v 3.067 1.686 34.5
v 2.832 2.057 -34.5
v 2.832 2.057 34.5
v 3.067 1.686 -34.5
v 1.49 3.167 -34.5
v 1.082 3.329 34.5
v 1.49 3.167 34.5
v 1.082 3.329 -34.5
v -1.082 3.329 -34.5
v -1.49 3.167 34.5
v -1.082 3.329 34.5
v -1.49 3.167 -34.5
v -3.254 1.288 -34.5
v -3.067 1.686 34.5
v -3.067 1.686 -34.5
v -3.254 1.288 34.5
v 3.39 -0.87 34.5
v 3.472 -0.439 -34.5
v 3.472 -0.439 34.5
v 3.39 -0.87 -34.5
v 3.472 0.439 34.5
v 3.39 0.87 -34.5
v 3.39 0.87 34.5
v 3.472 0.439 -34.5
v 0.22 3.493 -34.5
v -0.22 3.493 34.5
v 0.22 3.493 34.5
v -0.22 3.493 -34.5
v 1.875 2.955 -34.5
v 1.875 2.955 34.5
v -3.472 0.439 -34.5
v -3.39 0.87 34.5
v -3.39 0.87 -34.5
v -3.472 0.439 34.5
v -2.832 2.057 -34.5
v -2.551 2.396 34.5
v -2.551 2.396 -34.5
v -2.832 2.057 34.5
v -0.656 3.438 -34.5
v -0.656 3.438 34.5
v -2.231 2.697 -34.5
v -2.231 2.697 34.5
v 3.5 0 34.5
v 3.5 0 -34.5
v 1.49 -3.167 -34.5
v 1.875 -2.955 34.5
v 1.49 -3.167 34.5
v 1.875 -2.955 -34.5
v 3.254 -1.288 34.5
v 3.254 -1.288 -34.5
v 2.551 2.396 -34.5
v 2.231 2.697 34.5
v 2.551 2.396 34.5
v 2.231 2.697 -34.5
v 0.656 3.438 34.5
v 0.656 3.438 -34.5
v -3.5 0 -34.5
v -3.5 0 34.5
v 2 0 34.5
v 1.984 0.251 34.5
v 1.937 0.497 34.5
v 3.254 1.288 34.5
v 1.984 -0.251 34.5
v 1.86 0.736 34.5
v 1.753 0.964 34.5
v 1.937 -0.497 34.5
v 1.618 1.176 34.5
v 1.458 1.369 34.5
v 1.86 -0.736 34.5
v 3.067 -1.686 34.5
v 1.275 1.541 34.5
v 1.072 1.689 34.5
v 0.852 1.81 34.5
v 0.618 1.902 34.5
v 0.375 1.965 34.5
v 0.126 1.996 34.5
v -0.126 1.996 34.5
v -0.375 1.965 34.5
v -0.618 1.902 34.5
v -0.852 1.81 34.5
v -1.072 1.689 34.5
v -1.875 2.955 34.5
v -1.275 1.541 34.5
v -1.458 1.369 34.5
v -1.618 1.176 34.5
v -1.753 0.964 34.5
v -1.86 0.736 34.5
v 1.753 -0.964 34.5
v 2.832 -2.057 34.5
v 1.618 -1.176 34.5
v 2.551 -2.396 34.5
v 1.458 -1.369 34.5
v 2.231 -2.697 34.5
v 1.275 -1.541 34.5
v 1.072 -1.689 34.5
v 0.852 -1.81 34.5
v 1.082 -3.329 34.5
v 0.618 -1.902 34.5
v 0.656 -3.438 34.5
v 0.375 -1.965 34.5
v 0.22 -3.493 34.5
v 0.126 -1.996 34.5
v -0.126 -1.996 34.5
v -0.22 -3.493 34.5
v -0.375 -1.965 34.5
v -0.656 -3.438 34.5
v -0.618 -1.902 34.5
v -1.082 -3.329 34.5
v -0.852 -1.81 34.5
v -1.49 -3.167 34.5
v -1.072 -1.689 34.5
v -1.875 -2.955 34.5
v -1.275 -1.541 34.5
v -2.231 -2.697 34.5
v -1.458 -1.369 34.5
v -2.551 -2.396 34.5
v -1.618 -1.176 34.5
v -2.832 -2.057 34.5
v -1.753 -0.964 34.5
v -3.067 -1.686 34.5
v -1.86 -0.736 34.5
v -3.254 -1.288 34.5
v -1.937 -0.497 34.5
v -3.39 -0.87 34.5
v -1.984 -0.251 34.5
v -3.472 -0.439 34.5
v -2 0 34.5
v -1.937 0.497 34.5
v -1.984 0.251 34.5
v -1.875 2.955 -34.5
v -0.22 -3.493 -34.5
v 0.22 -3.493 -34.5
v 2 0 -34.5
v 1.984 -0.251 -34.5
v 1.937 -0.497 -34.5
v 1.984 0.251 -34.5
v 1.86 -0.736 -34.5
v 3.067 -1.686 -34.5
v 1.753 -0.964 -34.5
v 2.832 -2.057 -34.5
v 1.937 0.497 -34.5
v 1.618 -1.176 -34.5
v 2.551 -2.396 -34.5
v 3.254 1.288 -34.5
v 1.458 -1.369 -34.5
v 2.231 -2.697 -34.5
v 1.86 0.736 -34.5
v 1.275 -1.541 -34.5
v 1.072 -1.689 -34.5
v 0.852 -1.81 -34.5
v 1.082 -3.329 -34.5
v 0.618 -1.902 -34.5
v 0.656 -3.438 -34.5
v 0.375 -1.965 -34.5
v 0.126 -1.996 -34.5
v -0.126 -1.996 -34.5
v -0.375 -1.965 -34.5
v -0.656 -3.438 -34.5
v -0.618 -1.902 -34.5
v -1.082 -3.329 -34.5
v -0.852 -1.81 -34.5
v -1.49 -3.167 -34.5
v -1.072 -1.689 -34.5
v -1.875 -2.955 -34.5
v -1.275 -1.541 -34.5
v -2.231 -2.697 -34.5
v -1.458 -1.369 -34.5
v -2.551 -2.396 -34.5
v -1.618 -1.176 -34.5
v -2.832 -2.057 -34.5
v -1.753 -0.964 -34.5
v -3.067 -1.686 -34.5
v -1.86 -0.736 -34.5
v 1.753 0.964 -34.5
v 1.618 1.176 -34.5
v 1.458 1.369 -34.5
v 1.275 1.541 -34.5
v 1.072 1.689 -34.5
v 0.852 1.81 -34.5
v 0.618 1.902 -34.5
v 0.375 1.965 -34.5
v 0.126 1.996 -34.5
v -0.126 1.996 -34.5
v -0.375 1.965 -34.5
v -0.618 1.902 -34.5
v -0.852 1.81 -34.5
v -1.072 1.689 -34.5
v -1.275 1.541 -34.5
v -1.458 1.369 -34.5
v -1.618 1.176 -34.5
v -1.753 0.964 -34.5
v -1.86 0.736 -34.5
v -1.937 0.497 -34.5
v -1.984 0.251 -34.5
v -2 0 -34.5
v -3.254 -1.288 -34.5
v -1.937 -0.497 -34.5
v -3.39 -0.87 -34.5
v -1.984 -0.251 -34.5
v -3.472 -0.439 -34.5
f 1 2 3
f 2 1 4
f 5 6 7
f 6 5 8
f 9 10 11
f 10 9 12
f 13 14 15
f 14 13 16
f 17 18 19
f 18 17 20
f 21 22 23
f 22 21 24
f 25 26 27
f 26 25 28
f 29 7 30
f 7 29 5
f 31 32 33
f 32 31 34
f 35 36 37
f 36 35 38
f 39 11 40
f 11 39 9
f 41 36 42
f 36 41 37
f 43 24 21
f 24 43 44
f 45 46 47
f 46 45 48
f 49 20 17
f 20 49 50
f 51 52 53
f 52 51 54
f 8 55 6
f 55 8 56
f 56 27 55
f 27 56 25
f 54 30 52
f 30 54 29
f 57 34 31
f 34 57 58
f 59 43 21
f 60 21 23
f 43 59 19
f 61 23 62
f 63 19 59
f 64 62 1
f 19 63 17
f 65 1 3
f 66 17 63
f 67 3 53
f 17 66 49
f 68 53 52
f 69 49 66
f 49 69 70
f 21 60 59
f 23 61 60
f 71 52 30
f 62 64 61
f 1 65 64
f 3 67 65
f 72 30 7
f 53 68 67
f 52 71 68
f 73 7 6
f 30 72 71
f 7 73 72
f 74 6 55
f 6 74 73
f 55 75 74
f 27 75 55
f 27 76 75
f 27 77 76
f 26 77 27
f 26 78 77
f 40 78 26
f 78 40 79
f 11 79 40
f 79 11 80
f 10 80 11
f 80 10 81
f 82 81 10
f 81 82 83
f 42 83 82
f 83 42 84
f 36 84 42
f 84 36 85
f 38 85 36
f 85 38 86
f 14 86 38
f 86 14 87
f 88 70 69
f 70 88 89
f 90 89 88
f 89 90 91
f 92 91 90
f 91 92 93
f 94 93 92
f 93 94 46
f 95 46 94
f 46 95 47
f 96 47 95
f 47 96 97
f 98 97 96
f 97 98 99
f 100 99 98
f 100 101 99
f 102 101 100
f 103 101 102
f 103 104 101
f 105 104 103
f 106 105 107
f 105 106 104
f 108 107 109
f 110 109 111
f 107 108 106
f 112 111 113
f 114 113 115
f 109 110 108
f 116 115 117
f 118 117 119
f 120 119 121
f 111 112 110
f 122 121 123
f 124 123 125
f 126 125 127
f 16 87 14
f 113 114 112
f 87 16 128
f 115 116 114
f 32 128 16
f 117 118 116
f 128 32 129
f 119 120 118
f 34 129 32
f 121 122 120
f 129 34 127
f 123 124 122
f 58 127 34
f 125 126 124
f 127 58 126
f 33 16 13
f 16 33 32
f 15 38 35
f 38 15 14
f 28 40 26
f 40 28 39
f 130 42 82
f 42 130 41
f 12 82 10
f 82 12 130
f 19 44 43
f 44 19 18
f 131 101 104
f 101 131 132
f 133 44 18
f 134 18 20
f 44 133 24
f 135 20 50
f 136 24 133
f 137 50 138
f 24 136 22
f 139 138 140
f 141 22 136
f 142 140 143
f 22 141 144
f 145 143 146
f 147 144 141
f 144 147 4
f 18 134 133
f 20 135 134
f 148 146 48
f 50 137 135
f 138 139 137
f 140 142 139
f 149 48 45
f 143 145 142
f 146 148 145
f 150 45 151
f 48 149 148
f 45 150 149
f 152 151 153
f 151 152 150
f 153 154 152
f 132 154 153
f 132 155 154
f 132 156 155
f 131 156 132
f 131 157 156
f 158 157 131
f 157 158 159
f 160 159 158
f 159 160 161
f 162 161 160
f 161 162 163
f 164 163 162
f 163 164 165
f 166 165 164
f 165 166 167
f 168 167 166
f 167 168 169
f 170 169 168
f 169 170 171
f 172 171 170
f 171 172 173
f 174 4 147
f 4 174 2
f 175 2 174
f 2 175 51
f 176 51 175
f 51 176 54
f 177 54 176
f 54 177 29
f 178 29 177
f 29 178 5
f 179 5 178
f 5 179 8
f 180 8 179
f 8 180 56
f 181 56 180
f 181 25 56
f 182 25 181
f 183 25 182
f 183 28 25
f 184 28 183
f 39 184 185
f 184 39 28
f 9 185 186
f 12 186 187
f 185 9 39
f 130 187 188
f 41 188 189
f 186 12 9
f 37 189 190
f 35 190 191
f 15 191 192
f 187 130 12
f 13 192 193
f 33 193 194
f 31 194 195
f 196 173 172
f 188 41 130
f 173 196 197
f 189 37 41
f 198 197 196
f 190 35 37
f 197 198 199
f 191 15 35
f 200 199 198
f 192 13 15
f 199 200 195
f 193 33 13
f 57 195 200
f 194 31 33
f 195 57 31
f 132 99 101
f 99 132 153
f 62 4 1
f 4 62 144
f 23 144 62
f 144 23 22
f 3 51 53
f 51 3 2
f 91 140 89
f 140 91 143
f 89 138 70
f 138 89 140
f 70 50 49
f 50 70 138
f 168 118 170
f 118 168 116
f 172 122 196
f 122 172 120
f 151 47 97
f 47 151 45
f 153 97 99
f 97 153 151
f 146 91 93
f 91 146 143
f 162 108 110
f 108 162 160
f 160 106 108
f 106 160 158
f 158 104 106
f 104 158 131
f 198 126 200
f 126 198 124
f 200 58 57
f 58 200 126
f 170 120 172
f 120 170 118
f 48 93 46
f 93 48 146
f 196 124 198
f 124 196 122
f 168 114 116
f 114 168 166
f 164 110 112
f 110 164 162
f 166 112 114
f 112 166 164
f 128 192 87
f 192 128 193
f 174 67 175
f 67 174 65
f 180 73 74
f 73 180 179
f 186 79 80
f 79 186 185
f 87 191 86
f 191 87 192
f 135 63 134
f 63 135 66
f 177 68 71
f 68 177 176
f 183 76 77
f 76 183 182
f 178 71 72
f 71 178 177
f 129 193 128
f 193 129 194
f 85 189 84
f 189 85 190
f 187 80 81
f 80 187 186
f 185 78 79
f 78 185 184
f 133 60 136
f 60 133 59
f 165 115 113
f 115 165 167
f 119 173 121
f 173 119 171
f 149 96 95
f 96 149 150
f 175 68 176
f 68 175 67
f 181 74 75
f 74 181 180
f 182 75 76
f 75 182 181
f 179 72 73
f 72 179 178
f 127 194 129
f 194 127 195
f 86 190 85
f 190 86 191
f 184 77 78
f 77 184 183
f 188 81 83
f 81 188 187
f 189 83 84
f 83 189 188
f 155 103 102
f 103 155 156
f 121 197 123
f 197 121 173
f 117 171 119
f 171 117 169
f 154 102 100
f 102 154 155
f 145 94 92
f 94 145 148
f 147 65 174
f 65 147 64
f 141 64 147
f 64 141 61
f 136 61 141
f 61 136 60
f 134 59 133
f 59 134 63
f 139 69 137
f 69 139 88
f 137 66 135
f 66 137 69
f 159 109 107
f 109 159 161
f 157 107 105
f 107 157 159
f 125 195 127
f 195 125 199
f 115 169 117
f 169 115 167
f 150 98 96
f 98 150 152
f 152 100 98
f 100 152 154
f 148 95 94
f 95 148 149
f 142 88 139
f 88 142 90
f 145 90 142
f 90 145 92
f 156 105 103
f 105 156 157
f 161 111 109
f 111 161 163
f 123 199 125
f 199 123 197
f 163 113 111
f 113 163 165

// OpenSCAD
$fn = 50;


difference() {
	union() {
		translate(v = [0, 0, -34.5000000000]) {
			cylinder(h = 69, r = 3.5000000000);
		}
	}
	union() {
		translate(v = [0, 0, -100.0000000000]) {
			cylinder(h = 200, r = 2);
		}
	}
}
